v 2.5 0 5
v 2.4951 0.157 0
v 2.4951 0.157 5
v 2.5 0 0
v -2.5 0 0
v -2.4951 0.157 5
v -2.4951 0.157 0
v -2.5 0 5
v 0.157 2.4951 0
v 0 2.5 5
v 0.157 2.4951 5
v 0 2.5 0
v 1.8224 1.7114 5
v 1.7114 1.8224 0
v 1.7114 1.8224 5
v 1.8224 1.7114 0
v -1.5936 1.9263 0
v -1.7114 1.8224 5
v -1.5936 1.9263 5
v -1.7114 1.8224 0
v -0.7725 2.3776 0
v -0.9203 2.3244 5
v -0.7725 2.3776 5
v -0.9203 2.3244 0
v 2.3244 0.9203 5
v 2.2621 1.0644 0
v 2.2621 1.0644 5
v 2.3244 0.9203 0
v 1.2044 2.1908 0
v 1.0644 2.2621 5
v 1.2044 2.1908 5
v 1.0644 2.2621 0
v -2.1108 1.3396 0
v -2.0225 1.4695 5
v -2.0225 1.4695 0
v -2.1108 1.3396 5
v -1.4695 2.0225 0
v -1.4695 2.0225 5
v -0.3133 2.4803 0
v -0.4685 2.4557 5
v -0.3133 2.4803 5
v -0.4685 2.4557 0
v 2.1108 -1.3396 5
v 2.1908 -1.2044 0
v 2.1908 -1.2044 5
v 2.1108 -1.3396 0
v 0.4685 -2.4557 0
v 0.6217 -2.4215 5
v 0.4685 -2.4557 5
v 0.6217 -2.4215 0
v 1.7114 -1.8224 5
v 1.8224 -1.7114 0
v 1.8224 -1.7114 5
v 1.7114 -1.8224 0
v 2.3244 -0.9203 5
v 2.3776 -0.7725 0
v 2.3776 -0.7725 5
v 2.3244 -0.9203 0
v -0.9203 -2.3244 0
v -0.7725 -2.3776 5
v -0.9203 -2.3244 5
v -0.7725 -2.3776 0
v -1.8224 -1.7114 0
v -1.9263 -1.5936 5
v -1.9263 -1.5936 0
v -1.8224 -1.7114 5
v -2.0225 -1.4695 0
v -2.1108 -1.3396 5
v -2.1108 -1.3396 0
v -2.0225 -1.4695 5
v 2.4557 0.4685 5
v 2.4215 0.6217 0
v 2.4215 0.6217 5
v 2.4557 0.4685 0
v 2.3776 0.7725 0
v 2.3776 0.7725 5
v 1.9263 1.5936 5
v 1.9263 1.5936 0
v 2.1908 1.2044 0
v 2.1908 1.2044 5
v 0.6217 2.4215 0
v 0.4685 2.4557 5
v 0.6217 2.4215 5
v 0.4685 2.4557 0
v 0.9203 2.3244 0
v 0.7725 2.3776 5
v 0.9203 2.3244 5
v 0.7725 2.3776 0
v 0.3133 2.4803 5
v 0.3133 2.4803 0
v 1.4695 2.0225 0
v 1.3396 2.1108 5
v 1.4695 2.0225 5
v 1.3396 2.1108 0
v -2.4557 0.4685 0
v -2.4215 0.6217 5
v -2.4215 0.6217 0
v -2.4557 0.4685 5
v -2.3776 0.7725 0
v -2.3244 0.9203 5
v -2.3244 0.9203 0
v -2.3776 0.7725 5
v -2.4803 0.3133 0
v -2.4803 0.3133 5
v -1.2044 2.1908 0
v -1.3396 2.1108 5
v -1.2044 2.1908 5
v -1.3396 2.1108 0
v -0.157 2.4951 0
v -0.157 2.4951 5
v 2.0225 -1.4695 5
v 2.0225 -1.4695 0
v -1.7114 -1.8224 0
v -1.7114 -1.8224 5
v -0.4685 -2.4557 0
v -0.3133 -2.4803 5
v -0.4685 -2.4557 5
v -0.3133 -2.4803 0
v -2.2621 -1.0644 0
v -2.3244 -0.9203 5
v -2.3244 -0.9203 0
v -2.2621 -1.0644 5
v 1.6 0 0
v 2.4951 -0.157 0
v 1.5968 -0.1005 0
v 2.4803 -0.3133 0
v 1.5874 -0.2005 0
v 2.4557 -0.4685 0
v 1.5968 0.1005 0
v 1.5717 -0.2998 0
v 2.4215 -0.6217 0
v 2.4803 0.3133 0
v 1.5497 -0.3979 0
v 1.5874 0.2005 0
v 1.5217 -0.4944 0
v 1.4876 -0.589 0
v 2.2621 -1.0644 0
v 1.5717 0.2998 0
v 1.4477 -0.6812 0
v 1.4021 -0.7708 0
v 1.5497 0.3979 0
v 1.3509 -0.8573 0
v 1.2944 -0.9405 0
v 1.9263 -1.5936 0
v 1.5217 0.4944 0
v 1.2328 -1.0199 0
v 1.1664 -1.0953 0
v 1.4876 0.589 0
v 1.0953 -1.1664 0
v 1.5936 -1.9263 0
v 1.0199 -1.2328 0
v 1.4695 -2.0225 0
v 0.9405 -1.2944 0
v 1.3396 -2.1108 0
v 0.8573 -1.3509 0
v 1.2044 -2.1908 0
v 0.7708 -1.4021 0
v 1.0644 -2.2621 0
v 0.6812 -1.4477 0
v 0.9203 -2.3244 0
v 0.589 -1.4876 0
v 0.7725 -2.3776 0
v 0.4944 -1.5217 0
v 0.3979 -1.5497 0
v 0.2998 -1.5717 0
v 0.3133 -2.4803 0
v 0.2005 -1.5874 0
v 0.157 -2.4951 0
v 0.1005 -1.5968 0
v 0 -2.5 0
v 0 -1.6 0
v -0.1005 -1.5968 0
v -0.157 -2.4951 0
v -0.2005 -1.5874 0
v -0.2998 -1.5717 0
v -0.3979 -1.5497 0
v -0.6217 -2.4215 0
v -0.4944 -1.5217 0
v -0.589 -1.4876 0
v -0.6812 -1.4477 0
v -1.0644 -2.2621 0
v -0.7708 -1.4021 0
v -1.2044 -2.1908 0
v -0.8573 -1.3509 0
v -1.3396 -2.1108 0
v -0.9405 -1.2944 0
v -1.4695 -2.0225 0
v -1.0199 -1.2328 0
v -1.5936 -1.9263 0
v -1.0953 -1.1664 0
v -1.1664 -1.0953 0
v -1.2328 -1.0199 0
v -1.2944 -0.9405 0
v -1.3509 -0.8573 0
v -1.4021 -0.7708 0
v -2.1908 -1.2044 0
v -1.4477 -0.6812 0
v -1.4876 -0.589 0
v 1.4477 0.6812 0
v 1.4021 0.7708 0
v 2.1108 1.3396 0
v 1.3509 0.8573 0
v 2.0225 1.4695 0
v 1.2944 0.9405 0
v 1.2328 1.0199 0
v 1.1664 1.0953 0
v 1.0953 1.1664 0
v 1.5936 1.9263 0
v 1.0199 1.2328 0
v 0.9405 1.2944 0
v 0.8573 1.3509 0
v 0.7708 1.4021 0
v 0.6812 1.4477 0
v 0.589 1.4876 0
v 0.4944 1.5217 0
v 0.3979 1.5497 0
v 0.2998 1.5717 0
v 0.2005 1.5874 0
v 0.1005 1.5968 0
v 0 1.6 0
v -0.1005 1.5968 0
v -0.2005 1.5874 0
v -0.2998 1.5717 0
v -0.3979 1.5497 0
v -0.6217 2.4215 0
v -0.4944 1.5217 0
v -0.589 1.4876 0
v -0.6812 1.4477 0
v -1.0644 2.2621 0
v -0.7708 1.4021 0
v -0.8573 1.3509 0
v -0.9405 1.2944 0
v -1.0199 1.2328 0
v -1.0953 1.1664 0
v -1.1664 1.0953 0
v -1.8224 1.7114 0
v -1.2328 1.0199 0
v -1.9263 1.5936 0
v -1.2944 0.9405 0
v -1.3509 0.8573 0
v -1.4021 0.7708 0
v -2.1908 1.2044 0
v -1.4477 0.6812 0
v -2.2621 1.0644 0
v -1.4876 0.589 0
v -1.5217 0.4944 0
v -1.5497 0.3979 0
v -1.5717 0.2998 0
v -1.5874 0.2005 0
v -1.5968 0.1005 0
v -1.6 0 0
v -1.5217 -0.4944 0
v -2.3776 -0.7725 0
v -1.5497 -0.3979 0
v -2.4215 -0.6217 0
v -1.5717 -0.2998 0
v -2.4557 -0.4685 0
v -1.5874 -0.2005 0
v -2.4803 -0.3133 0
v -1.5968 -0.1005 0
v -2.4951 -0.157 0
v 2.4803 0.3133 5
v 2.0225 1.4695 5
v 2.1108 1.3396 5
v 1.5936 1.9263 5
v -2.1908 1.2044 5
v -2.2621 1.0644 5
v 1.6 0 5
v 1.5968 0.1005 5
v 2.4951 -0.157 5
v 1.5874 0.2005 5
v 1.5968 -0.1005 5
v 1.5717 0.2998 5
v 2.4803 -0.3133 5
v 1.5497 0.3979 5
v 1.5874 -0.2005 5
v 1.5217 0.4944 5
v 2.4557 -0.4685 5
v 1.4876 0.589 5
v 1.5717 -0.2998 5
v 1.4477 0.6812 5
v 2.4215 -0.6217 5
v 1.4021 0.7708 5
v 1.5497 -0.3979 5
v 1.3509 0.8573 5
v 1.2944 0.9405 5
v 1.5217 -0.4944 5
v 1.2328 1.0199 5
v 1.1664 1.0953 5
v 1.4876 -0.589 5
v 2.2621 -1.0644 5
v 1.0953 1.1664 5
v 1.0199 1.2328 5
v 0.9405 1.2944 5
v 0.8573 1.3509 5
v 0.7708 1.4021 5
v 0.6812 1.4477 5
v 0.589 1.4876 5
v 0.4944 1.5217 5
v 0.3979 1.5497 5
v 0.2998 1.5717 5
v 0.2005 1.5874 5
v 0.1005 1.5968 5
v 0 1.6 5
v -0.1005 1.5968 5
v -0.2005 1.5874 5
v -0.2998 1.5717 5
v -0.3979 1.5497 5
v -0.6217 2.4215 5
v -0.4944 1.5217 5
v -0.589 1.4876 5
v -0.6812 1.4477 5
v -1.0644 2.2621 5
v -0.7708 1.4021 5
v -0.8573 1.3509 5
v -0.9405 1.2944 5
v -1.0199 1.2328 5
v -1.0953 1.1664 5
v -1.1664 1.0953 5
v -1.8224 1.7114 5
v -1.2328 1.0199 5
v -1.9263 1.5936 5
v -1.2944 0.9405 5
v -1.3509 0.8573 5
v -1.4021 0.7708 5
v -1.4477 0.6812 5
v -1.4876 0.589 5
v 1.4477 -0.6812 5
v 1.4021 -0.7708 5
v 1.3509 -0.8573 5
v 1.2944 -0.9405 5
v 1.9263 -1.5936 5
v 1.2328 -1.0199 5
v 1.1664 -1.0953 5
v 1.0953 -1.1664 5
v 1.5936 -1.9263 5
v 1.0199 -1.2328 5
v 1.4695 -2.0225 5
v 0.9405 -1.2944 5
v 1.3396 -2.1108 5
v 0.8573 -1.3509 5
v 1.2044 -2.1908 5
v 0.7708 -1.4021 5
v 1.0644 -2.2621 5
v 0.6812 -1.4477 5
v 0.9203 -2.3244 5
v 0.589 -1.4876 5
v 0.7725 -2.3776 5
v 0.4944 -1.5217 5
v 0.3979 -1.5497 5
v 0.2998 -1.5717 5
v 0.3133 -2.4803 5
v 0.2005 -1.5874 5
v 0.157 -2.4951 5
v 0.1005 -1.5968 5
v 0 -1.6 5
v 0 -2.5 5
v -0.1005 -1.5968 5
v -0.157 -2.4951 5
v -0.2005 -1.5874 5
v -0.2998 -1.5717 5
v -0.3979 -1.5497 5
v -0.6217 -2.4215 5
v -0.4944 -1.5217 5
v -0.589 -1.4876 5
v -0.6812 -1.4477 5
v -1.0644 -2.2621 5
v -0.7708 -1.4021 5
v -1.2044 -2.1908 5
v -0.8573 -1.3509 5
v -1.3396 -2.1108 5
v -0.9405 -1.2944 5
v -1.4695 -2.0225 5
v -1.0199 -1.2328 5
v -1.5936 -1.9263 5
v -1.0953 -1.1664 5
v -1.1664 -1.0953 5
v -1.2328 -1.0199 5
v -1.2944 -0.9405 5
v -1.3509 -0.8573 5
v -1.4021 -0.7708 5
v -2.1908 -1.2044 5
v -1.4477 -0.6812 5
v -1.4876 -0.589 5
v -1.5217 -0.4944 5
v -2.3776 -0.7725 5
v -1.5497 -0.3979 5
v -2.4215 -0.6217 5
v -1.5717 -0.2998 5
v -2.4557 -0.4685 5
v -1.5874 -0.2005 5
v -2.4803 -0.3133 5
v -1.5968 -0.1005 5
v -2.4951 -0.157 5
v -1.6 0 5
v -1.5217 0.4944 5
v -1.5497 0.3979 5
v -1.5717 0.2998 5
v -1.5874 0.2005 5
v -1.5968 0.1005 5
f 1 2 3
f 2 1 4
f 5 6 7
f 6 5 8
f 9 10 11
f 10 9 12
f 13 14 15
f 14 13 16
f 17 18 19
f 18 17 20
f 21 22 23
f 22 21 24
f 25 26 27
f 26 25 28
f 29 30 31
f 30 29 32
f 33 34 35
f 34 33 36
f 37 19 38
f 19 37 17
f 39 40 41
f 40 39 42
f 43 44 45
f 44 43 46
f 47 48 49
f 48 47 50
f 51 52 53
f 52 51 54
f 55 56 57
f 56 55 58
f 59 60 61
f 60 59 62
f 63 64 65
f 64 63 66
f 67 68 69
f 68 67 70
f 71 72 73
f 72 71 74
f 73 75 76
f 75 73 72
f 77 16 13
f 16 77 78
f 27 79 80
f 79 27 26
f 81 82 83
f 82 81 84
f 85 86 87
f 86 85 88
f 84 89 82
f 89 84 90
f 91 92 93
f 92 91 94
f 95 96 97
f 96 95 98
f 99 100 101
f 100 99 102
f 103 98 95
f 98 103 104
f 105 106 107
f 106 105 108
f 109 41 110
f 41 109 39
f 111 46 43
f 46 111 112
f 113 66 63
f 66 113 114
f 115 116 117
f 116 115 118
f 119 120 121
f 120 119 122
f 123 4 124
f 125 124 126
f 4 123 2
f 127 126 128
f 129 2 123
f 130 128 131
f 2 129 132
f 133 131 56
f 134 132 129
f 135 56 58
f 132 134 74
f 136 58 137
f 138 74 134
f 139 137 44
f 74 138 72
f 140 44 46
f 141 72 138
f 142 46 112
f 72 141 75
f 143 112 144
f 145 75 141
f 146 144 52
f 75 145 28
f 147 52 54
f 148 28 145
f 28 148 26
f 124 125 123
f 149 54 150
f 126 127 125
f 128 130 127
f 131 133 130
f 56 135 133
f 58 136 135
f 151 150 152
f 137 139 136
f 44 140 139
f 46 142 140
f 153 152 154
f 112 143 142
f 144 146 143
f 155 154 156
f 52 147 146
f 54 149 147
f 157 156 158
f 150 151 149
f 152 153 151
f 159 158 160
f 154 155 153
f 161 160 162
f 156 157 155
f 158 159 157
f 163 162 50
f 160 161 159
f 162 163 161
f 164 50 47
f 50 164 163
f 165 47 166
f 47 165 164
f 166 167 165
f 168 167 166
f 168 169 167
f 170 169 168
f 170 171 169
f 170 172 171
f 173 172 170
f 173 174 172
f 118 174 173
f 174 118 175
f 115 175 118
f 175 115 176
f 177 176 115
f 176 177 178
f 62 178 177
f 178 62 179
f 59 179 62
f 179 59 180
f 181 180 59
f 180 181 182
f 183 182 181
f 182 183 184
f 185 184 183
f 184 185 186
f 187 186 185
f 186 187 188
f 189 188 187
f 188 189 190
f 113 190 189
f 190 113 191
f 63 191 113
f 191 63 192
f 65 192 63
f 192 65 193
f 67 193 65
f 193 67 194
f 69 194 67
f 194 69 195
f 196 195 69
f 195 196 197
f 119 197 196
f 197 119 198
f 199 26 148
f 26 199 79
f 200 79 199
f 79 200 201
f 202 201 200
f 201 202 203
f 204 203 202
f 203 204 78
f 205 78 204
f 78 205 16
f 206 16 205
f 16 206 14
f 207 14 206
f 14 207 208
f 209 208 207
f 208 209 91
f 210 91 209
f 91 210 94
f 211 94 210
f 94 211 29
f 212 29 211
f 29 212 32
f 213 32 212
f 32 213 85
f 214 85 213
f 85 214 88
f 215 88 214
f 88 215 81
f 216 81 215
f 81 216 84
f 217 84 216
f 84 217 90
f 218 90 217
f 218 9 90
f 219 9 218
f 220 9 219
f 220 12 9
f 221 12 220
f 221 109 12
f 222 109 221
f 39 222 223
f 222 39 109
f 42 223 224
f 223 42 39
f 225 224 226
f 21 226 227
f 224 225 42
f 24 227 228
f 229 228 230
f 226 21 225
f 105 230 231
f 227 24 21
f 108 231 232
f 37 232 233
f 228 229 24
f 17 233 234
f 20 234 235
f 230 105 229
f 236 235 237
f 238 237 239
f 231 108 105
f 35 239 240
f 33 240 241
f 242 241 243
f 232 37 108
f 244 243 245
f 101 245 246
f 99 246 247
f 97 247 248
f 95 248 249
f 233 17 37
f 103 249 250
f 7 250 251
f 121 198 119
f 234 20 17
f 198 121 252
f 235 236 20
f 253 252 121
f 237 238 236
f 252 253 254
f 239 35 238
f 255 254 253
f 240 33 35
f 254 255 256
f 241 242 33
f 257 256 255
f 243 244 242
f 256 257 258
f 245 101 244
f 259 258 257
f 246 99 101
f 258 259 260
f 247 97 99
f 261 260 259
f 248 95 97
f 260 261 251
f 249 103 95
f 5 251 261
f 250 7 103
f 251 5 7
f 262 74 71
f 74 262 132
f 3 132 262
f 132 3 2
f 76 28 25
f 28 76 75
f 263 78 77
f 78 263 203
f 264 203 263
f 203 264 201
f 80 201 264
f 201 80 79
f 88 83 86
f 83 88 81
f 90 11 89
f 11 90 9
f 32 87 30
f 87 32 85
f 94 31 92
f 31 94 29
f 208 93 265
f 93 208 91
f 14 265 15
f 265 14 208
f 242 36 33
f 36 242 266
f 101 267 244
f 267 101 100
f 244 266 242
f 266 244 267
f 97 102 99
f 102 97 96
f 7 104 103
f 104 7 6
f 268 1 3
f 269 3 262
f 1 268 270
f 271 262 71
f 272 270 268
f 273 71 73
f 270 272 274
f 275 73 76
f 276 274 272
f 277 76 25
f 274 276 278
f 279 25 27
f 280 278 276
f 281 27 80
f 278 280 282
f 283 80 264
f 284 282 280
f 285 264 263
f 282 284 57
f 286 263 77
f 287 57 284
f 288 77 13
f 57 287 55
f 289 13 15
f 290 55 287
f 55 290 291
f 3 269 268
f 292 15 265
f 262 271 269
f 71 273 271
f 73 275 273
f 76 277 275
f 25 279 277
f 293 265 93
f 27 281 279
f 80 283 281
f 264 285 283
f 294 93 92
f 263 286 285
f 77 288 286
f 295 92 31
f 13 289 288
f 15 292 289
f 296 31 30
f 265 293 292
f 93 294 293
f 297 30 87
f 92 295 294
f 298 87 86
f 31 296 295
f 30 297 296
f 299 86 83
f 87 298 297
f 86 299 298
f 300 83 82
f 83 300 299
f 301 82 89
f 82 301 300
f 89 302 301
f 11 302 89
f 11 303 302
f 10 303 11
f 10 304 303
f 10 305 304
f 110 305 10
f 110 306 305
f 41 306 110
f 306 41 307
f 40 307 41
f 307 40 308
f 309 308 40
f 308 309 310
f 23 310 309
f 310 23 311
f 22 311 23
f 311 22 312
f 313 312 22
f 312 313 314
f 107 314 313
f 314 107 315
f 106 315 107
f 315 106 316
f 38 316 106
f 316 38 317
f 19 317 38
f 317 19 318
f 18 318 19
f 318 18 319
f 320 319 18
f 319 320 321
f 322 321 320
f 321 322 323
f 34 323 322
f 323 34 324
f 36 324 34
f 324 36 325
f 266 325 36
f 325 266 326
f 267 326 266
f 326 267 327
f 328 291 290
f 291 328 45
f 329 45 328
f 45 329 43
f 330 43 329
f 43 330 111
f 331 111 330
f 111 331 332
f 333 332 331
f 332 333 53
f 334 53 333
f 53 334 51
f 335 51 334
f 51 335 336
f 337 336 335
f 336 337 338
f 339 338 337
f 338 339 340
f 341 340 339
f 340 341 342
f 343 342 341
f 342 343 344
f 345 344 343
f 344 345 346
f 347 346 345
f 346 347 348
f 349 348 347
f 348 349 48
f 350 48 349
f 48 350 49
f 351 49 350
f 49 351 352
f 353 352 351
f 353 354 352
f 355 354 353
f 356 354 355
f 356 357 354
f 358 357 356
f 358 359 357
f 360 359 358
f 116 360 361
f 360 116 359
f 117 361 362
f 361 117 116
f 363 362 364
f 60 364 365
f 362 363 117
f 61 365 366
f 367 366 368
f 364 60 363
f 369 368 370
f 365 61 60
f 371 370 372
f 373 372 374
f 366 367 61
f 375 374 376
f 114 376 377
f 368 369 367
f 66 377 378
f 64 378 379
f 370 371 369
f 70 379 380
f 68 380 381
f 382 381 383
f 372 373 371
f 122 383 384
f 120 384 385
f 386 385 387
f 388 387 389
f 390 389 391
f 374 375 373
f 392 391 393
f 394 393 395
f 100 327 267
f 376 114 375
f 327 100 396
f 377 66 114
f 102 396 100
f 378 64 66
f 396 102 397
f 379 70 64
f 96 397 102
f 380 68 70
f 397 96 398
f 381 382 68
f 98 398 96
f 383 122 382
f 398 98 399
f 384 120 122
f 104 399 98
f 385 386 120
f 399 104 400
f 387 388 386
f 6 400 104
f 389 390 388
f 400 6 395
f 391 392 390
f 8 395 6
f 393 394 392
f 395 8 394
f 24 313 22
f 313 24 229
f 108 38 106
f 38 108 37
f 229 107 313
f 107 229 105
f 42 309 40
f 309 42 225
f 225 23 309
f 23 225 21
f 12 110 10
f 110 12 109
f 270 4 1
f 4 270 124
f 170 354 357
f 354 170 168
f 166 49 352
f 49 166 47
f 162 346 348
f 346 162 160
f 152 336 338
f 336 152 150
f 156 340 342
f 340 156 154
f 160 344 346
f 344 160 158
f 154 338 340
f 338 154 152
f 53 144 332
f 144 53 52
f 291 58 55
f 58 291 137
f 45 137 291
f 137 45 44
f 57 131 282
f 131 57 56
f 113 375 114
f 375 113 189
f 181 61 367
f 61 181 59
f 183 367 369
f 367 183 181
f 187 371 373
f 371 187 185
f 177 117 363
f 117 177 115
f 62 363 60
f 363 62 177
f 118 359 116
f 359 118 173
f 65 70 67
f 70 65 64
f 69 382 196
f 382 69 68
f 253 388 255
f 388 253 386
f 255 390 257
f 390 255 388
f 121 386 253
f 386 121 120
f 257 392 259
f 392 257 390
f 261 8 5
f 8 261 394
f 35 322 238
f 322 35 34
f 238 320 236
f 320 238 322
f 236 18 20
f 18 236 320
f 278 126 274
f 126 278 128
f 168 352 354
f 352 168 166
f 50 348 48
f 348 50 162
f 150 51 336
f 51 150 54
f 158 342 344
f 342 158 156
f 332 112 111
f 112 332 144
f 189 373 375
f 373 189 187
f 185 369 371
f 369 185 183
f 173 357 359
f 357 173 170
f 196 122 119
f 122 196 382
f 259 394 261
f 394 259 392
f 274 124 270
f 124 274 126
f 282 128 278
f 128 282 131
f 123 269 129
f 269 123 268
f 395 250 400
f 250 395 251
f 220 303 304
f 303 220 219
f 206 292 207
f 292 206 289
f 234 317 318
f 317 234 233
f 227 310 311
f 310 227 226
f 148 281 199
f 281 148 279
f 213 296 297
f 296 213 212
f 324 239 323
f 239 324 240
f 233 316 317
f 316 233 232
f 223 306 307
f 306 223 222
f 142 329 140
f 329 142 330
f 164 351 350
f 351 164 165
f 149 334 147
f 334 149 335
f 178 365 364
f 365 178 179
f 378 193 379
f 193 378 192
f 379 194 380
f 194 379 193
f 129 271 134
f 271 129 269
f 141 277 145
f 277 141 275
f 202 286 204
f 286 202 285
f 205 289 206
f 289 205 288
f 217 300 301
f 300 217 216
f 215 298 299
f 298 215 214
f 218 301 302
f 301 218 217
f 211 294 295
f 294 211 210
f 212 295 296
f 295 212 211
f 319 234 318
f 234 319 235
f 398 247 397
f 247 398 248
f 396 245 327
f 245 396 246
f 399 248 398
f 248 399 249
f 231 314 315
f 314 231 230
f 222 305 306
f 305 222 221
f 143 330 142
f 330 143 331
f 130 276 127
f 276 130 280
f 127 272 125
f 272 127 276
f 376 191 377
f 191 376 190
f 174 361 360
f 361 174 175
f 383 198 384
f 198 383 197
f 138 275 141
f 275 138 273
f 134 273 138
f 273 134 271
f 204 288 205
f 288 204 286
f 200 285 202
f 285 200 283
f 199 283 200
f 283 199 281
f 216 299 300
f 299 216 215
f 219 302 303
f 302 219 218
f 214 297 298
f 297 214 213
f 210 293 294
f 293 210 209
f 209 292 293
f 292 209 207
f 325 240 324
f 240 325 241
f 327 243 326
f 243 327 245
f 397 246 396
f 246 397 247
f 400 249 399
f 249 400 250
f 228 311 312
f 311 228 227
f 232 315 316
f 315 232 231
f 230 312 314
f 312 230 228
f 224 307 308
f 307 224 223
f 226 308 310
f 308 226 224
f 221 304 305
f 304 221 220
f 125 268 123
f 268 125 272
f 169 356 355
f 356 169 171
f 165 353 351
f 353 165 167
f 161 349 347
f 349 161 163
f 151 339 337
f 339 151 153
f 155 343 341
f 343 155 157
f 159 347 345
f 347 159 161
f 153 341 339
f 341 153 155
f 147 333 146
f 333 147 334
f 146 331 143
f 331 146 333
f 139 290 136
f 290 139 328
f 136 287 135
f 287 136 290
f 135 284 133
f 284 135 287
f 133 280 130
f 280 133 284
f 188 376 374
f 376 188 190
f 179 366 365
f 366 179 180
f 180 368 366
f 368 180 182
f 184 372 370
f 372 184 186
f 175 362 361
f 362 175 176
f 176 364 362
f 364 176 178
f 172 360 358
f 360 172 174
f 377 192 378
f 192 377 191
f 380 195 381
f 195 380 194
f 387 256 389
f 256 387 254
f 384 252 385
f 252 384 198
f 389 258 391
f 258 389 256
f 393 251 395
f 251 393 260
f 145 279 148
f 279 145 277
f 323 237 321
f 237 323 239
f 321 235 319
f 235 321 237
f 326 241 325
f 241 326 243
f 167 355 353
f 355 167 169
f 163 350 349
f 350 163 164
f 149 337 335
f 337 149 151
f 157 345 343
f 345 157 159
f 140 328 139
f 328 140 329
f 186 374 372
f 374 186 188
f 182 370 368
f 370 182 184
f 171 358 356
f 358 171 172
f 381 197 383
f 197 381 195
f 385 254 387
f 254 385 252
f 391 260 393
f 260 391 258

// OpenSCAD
$fn=100;
difference(){
    cylinder(r=2.5,h=5);
    cylinder(r=1.6,h=5);
}
